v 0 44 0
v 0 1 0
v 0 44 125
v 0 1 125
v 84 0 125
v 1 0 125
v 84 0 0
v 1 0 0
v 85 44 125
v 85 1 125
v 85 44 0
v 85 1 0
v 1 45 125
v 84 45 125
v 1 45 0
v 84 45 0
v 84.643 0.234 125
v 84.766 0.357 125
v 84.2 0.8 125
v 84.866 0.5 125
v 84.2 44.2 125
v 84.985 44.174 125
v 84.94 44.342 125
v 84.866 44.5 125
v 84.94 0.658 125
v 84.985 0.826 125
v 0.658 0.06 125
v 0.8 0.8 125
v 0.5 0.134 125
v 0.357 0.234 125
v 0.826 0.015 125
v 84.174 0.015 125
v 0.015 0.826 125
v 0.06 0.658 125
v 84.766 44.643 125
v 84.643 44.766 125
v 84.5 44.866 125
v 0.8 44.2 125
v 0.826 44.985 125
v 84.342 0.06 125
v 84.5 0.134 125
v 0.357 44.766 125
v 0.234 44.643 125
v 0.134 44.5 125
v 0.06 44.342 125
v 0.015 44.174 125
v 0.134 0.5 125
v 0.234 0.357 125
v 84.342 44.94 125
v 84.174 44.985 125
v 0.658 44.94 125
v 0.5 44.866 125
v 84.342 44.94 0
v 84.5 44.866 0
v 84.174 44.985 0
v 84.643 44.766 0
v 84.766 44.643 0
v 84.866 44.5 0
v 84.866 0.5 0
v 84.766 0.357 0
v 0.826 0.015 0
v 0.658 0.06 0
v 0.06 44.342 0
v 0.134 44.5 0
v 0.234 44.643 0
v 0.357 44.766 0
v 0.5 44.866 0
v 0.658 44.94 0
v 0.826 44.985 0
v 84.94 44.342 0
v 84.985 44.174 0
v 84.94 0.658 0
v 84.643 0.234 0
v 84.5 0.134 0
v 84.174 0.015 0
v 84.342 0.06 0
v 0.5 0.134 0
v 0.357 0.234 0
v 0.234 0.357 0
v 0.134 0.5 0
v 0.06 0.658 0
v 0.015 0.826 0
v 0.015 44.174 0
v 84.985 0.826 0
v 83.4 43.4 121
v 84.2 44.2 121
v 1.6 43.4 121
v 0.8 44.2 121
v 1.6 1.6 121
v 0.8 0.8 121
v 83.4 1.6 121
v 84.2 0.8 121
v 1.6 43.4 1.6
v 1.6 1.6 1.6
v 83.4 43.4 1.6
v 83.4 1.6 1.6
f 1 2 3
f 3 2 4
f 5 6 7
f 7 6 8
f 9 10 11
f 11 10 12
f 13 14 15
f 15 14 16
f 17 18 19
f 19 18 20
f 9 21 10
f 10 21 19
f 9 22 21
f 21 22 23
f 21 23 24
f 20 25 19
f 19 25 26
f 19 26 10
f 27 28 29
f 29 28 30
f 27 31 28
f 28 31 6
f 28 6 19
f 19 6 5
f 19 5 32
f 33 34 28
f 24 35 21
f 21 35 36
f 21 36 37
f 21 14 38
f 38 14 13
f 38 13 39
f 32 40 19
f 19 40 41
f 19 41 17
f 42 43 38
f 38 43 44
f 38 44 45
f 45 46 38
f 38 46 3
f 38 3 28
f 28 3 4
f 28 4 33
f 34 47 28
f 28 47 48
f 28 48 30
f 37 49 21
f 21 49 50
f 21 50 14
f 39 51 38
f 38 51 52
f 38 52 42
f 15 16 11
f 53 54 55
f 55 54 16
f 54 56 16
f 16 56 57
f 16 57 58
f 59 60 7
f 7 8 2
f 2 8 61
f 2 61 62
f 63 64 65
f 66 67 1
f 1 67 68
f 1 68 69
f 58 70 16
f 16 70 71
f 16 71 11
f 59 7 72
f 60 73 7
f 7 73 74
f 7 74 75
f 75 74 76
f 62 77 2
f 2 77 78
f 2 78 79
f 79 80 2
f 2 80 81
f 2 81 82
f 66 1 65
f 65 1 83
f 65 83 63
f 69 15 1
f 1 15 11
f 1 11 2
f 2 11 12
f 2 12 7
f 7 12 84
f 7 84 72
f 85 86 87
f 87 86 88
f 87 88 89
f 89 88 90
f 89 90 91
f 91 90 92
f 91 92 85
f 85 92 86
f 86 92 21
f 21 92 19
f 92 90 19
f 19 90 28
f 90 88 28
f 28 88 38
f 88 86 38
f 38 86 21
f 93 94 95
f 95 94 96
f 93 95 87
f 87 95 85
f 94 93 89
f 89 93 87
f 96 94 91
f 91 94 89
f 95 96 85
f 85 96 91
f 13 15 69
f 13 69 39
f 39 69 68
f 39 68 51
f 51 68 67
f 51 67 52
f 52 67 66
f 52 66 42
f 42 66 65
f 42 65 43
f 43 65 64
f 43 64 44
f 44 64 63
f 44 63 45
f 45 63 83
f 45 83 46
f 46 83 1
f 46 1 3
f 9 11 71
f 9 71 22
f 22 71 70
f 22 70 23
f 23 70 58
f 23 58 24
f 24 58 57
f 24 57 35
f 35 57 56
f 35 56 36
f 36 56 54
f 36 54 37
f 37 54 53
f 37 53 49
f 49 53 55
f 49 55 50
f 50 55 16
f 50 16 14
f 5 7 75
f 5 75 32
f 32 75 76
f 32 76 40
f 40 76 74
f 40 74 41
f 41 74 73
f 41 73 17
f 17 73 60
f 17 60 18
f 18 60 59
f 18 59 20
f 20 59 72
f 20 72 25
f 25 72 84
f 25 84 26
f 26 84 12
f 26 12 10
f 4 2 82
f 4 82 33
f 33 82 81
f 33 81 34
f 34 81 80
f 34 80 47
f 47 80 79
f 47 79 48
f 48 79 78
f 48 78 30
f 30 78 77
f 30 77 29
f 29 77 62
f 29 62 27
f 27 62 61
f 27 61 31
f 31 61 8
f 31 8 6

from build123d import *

# Parameters (mm, degrees)
SKETCH_1_W          = 85
SKETCH_1_H          = 45
EXTRUDE_1_DEPTH     = 125
SKETCH_2_W          = 81.8
SKETCH_2_H          = 41.8
CUT_EXTRUDE_1_DEPTH = 123.4
SKETCH_3_W          = 83.4
SKETCH_3_H          = 43.4
CUT_EXTRUDE_2_DEPTH = 4
FILLET_2_R          = 1


with BuildPart() as part:
    # Эскиз1 → Бобышка-Вытянуть1 (new body)
    with BuildSketch(Plane.XY):
        with Locations((42.5, 22.5)):
            Rectangle(SKETCH_1_W, SKETCH_1_H)
    extrude(amount=EXTRUDE_1_DEPTH)

    # Эскиз2 → Вырез-Вытянуть1 (cut)
    with BuildSketch(Plane.XY.offset(125)):
        with Locations((42.5, 22.5)):
            Rectangle(SKETCH_2_W, SKETCH_2_H)
    extrude(amount=-CUT_EXTRUDE_1_DEPTH, mode=Mode.SUBTRACT)

    # Эскиз3 → Вырез-Вытянуть2 (cut)
    with BuildSketch(Plane.XY.offset(125)):
        with Locations((42.5, 22.5)):
            Rectangle(SKETCH_3_W, SKETCH_3_H)
    extrude(amount=-CUT_EXTRUDE_2_DEPTH, mode=Mode.SUBTRACT)

    # Скругление2
    fillet_2_edges = [part.edges().sort_by_distance(p)[0] for p in [
        (0, 45, 62.5),
        (85, 45, 62.5),
        (85, 0, 62.5),
        (0, 0, 62.5),
    ]]
    fillet(fillet_2_edges, radius=FILLET_2_R)


solid = part.part
